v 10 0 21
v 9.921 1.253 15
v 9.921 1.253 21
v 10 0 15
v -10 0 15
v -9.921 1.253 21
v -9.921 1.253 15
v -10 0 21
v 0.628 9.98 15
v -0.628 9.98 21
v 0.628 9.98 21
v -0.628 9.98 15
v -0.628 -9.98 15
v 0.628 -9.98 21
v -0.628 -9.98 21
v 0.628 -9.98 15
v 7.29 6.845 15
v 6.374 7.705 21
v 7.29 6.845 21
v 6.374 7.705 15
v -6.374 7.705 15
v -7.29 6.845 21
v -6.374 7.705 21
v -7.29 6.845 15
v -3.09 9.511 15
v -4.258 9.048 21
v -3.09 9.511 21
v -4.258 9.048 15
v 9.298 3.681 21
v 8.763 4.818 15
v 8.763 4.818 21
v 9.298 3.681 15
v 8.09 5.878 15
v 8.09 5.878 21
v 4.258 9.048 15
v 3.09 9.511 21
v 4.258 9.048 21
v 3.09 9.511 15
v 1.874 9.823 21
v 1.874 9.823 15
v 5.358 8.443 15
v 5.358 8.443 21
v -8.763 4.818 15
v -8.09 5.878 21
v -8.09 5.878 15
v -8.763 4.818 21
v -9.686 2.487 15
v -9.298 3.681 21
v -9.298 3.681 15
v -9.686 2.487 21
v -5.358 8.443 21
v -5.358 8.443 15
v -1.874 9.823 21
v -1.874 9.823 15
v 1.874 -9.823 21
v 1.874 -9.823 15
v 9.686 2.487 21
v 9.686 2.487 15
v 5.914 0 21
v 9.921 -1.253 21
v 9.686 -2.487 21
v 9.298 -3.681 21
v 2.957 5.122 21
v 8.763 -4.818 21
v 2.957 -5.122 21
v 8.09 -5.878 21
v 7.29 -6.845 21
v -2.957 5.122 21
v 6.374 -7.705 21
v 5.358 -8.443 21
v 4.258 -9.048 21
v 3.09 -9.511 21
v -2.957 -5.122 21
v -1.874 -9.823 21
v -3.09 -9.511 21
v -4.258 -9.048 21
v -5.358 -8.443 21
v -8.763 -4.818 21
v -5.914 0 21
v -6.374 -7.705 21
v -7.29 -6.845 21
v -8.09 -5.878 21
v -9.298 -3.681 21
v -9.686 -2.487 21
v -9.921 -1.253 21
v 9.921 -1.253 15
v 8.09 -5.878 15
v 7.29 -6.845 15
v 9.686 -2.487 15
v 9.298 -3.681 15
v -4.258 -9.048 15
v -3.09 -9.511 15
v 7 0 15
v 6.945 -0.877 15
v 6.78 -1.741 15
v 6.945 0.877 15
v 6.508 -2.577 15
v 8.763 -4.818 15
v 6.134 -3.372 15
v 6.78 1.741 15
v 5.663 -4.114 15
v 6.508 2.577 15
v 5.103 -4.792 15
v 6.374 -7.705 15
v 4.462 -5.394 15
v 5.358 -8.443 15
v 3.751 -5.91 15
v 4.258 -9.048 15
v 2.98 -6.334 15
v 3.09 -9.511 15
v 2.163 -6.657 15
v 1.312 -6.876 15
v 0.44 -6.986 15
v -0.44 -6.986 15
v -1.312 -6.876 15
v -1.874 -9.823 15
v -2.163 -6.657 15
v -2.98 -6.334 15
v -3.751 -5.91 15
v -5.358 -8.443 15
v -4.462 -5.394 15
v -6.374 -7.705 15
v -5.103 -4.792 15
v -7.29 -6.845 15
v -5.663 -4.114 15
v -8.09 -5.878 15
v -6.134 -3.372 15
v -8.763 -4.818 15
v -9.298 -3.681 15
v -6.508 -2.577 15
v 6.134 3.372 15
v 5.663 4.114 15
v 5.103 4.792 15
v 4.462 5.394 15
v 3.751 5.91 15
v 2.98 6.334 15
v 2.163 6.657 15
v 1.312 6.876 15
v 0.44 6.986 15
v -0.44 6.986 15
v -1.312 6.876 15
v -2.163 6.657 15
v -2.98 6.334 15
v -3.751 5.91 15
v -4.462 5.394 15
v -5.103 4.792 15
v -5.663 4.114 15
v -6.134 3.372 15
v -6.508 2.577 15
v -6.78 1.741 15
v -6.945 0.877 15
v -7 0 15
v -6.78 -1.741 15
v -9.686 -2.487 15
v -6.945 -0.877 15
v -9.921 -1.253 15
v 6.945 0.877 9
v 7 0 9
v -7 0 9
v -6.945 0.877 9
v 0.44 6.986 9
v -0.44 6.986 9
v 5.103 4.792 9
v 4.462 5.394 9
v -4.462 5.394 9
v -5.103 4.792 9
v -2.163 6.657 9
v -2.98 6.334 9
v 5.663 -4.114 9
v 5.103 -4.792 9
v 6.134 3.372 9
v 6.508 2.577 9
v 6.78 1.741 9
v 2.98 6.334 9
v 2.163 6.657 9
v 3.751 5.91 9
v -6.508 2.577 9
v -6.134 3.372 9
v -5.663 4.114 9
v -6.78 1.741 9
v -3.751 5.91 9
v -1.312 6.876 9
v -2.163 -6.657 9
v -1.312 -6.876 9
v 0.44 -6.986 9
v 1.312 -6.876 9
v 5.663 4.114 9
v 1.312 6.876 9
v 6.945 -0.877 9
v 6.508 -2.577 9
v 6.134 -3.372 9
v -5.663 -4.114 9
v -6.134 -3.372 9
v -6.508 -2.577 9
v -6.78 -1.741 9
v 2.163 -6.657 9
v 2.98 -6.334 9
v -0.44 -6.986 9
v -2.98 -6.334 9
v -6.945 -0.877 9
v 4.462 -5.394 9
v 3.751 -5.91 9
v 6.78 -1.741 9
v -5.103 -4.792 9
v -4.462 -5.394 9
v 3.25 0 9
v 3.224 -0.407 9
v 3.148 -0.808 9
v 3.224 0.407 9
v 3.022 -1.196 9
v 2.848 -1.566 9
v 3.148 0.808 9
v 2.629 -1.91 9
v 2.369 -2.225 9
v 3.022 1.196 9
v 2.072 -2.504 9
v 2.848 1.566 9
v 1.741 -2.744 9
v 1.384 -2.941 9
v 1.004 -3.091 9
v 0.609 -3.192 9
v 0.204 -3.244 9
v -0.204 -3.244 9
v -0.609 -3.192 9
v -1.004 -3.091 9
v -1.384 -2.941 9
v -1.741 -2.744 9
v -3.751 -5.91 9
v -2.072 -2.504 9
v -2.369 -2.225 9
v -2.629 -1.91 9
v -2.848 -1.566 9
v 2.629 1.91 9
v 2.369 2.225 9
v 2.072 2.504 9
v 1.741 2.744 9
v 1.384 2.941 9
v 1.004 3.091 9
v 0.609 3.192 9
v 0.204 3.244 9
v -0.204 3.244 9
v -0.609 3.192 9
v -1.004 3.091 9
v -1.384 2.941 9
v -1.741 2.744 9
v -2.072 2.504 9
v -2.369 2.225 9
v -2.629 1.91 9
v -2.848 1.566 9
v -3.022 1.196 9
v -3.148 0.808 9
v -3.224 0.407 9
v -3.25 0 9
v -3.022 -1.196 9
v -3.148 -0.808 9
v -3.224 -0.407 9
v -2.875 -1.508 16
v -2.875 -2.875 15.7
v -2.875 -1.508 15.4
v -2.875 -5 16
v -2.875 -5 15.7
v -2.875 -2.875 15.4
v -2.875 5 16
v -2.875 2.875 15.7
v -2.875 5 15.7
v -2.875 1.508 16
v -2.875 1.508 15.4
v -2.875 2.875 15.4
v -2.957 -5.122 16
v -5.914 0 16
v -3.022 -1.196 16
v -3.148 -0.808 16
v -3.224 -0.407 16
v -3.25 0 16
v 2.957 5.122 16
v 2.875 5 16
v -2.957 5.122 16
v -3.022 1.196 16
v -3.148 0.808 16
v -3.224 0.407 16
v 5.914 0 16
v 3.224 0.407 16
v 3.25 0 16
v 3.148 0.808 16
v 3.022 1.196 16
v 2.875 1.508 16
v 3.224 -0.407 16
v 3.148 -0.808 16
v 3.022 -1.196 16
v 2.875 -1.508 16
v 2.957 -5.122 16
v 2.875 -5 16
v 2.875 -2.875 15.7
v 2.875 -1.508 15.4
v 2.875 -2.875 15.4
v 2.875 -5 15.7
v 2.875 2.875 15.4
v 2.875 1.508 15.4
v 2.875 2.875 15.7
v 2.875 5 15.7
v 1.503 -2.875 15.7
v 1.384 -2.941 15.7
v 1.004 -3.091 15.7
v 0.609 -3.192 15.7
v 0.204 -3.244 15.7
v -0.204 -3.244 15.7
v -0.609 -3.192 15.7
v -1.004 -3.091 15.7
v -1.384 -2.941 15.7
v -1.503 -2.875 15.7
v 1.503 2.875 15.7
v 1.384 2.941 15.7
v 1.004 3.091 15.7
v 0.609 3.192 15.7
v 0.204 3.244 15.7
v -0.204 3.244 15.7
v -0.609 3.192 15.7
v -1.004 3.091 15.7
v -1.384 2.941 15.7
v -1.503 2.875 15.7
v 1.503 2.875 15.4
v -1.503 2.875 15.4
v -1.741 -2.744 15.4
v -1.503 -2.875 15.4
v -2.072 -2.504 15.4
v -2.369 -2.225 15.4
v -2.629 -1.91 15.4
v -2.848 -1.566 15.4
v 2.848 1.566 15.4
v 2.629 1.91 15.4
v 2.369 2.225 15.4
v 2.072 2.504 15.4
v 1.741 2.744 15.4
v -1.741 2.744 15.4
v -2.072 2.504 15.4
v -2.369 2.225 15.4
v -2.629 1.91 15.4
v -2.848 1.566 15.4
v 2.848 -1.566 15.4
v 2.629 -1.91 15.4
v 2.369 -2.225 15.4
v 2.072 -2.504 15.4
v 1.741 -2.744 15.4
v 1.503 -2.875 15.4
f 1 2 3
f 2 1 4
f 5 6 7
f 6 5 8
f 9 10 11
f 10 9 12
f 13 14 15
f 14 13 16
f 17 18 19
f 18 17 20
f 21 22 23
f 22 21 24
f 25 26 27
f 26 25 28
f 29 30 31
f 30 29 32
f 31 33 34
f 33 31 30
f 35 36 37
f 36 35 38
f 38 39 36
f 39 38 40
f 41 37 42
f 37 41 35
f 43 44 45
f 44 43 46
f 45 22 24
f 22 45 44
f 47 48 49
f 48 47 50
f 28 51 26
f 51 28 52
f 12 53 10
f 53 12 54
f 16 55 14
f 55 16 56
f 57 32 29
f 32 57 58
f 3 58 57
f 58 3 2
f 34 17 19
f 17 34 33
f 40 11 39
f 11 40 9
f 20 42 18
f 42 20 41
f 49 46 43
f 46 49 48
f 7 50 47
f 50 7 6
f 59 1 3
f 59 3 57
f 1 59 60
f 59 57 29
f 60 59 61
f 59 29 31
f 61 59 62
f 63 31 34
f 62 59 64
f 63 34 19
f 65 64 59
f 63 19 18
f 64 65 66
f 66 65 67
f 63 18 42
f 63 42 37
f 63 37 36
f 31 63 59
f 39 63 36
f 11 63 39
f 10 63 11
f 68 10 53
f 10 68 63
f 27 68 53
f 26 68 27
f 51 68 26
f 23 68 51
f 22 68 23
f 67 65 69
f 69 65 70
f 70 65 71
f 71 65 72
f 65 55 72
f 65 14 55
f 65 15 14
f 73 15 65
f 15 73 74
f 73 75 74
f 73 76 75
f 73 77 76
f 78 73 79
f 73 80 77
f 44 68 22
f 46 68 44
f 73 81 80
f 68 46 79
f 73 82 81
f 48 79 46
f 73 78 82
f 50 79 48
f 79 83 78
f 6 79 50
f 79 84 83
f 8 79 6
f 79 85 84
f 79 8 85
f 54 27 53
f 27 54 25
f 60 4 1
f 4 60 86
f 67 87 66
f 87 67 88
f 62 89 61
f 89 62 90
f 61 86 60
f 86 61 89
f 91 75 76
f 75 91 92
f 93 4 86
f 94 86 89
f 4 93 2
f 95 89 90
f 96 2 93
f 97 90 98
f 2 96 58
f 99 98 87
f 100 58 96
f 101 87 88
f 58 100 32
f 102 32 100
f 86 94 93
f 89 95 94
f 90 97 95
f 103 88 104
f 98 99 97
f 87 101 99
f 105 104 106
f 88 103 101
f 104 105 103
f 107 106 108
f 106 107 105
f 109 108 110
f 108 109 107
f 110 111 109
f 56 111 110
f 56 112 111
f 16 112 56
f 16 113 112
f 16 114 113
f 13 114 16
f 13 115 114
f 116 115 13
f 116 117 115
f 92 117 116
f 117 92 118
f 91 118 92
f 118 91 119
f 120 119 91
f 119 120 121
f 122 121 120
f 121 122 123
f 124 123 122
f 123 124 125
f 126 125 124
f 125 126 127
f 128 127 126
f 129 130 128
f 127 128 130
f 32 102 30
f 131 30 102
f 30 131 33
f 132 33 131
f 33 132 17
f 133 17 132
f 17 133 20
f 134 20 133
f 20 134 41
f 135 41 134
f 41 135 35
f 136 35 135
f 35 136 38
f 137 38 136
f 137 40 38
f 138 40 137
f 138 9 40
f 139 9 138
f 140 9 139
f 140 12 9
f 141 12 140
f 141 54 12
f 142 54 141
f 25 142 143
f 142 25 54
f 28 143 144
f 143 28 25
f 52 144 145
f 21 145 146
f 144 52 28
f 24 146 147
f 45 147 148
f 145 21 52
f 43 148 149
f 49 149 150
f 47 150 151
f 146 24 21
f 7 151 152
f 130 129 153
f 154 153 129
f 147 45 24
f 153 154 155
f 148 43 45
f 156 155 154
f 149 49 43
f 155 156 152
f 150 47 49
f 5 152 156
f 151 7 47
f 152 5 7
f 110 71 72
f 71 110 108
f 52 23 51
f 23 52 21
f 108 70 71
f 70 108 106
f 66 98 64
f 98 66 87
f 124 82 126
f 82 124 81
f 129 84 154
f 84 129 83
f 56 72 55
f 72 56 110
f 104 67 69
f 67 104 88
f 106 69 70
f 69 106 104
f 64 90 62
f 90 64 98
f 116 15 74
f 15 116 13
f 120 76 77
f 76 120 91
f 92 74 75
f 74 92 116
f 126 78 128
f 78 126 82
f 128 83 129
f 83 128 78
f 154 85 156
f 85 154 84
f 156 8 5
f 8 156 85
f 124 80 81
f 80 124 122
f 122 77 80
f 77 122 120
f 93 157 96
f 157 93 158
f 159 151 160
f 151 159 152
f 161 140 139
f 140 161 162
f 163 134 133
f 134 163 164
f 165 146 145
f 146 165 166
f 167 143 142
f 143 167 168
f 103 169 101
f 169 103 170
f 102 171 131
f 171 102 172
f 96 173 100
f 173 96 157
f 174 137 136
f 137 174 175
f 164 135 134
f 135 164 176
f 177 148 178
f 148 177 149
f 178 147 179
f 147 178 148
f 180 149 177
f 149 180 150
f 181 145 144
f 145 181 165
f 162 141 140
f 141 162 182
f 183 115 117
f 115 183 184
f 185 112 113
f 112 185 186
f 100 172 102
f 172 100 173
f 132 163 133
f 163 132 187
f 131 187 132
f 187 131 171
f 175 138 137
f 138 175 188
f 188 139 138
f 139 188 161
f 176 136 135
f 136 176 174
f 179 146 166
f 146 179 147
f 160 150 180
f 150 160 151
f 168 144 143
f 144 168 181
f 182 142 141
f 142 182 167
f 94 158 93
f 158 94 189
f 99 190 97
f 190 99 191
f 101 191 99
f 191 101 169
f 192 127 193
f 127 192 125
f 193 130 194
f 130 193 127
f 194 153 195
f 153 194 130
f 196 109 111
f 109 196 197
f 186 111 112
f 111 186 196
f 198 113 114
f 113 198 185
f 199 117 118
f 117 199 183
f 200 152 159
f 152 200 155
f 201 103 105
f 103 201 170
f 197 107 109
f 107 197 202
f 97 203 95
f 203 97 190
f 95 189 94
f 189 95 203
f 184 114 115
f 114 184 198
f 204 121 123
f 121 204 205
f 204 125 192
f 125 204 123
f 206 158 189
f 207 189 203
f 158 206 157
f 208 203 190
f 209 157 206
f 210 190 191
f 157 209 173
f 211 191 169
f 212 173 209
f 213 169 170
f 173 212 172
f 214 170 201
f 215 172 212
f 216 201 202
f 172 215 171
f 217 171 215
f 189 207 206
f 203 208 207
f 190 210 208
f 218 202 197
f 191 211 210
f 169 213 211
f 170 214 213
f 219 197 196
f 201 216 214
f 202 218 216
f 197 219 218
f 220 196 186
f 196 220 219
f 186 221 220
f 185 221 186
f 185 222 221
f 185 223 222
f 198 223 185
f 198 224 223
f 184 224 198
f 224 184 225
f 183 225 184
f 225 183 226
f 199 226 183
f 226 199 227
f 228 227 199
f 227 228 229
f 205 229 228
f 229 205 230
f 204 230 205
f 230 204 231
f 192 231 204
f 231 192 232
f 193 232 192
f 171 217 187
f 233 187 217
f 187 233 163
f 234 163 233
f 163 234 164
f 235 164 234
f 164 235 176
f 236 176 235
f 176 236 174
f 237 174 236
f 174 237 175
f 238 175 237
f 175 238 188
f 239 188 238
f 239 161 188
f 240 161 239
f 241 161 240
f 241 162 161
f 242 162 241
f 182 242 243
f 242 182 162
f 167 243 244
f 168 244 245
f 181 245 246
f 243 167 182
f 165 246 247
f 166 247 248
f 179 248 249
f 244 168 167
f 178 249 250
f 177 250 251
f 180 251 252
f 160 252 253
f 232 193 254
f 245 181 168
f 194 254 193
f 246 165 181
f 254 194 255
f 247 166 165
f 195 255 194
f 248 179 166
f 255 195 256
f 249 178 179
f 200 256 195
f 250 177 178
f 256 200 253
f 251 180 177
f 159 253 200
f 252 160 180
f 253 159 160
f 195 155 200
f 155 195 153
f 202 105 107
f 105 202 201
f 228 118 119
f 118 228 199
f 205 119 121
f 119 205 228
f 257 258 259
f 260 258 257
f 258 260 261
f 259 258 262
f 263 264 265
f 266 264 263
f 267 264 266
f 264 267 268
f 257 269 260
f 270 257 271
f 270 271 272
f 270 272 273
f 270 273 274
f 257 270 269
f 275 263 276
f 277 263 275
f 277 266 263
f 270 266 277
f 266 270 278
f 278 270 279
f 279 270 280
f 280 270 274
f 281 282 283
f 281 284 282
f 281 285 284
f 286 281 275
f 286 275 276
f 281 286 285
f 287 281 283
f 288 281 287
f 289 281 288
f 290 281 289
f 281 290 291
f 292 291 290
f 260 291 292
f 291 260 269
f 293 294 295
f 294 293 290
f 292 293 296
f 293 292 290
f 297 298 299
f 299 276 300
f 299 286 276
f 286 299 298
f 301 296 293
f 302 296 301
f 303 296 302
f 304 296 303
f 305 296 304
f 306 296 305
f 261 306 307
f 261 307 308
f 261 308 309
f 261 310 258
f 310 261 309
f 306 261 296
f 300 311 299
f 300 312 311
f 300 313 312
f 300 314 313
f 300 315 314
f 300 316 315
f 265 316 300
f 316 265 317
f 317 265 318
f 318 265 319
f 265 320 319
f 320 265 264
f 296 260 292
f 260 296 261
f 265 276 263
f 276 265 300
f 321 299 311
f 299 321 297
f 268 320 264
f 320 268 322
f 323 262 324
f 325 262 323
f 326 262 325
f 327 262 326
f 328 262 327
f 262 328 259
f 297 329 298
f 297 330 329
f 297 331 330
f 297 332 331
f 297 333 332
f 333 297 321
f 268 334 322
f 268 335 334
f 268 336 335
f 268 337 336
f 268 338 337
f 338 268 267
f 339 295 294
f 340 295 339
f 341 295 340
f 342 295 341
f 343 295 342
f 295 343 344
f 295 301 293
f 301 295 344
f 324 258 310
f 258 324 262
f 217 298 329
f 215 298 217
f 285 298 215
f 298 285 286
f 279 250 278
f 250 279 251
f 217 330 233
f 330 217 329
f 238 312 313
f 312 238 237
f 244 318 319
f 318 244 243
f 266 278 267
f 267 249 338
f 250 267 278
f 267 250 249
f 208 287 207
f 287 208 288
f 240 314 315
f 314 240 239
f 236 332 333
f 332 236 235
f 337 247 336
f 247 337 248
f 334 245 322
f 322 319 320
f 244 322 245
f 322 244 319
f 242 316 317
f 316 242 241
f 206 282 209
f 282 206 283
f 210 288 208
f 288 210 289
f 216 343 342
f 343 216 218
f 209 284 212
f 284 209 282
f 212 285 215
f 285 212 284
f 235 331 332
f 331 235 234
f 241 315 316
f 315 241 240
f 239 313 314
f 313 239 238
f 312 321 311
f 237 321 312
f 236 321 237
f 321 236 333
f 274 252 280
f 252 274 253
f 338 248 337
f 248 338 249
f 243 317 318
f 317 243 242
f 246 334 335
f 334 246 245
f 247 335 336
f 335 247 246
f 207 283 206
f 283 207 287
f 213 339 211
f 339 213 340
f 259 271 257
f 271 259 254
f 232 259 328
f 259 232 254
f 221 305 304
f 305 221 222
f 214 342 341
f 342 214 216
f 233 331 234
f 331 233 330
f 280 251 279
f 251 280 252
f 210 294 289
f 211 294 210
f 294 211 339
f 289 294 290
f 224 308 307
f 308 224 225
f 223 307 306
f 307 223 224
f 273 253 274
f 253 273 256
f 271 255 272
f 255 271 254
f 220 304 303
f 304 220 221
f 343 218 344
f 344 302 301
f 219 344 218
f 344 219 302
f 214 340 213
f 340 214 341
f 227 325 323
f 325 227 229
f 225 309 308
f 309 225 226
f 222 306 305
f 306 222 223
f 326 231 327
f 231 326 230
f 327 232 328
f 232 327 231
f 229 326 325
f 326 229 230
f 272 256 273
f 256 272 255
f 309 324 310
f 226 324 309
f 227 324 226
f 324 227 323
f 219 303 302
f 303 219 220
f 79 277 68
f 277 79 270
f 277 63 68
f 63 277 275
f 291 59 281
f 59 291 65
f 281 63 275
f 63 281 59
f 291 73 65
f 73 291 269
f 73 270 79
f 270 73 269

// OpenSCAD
$fn = 50;


difference() {
	union() {
		translate(v = [0, 0, 15.0000000000]) {
			cylinder(h = 6, r = 10.0000000000);
		}
		translate(v = [0, 0, 9.0000000000]) {
			cylinder(h = 12, r = 7.0000000000);
		}
	}
	union() {
		translate(v = [0, 0, 21]) {
			rotate(a = [0, 0, 0]) {
				difference() {
					union() {
						#translate(v = [-2.8750000000, -5.0000000000, -5.3000000000]) {
							cube(size = [5.7500000000, 10, 0.3000000000]);
						}
						#translate(v = [-2.8750000000, -2.8750000000, -5.6000000000]) {
							cube(size = [5.7500000000, 5.7500000000, 0.3000000000]);
						}
						#translate(v = [-2.8750000000, -5.0000000000, 0]) {
							cube(size = [5.7500000000, 10, 0.3000000000]);
						}
						#translate(v = [-2.8750000000, -2.8750000000, 0.3000000000]) {
							cube(size = [5.7500000000, 5.7500000000, 0.3000000000]);
						}
						#translate(v = [0, 0, -100.0000000000]) {
							cylinder(h = 200, r = 3.2500000000);
						}
						translate(v = [0, 0, -5]) {
							#linear_extrude(height = 5) {
								polygon(points = [[5.9142500000, 0.0000000000], [2.9571250000, 5.1218907443], [-2.9571250000, 5.1218907443], [-5.9142500000, 0.0000000000], [-2.9571250000, -5.1218907443], [2.9571250000, -5.1218907443]]);
							}
						}
						#translate(v = [-2.8750000000, -5.0000000000, -5.3000000000]) {
							cube(size = [5.7500000000, 10, 0.3000000000]);
						}
						#translate(v = [-2.8750000000, -2.8750000000, -5.6000000000]) {
							cube(size = [5.7500000000, 5.7500000000, 0.3000000000]);
						}
						#translate(v = [-2.8750000000, -5.0000000000, 0]) {
							cube(size = [5.7500000000, 10, 0.3000000000]);
						}
						#translate(v = [-2.8750000000, -2.8750000000, 0.3000000000]) {
							cube(size = [5.7500000000, 5.7500000000, 0.3000000000]);
						}
						#translate(v = [0, 0, -100.0000000000]) {
							cylinder(h = 200, r = 3.2500000000);
						}
						#translate(v = [-2.8750000000, -5.0000000000, -5.3000000000]) {
							cube(size = [5.7500000000, 10, 0.3000000000]);
						}
						#translate(v = [-2.8750000000, -2.8750000000, -5.6000000000]) {
							cube(size = [5.7500000000, 5.7500000000, 0.3000000000]);
						}
						#translate(v = [-2.8750000000, -5.0000000000, 0]) {
							cube(size = [5.7500000000, 10, 0.3000000000]);
						}
						#translate(v = [-2.8750000000, -2.8750000000, 0.3000000000]) {
							cube(size = [5.7500000000, 5.7500000000, 0.3000000000]);
						}
						#translate(v = [0, 0, -100.0000000000]) {
							cylinder(h = 200, r = 3.2500000000);
						}
					}
					union();
				}
			}
		}
		#translate(v = [0, 0, -100.0000000000]) {
			cylinder(h = 200, r = 3.2500000000);
		}
	}
}
